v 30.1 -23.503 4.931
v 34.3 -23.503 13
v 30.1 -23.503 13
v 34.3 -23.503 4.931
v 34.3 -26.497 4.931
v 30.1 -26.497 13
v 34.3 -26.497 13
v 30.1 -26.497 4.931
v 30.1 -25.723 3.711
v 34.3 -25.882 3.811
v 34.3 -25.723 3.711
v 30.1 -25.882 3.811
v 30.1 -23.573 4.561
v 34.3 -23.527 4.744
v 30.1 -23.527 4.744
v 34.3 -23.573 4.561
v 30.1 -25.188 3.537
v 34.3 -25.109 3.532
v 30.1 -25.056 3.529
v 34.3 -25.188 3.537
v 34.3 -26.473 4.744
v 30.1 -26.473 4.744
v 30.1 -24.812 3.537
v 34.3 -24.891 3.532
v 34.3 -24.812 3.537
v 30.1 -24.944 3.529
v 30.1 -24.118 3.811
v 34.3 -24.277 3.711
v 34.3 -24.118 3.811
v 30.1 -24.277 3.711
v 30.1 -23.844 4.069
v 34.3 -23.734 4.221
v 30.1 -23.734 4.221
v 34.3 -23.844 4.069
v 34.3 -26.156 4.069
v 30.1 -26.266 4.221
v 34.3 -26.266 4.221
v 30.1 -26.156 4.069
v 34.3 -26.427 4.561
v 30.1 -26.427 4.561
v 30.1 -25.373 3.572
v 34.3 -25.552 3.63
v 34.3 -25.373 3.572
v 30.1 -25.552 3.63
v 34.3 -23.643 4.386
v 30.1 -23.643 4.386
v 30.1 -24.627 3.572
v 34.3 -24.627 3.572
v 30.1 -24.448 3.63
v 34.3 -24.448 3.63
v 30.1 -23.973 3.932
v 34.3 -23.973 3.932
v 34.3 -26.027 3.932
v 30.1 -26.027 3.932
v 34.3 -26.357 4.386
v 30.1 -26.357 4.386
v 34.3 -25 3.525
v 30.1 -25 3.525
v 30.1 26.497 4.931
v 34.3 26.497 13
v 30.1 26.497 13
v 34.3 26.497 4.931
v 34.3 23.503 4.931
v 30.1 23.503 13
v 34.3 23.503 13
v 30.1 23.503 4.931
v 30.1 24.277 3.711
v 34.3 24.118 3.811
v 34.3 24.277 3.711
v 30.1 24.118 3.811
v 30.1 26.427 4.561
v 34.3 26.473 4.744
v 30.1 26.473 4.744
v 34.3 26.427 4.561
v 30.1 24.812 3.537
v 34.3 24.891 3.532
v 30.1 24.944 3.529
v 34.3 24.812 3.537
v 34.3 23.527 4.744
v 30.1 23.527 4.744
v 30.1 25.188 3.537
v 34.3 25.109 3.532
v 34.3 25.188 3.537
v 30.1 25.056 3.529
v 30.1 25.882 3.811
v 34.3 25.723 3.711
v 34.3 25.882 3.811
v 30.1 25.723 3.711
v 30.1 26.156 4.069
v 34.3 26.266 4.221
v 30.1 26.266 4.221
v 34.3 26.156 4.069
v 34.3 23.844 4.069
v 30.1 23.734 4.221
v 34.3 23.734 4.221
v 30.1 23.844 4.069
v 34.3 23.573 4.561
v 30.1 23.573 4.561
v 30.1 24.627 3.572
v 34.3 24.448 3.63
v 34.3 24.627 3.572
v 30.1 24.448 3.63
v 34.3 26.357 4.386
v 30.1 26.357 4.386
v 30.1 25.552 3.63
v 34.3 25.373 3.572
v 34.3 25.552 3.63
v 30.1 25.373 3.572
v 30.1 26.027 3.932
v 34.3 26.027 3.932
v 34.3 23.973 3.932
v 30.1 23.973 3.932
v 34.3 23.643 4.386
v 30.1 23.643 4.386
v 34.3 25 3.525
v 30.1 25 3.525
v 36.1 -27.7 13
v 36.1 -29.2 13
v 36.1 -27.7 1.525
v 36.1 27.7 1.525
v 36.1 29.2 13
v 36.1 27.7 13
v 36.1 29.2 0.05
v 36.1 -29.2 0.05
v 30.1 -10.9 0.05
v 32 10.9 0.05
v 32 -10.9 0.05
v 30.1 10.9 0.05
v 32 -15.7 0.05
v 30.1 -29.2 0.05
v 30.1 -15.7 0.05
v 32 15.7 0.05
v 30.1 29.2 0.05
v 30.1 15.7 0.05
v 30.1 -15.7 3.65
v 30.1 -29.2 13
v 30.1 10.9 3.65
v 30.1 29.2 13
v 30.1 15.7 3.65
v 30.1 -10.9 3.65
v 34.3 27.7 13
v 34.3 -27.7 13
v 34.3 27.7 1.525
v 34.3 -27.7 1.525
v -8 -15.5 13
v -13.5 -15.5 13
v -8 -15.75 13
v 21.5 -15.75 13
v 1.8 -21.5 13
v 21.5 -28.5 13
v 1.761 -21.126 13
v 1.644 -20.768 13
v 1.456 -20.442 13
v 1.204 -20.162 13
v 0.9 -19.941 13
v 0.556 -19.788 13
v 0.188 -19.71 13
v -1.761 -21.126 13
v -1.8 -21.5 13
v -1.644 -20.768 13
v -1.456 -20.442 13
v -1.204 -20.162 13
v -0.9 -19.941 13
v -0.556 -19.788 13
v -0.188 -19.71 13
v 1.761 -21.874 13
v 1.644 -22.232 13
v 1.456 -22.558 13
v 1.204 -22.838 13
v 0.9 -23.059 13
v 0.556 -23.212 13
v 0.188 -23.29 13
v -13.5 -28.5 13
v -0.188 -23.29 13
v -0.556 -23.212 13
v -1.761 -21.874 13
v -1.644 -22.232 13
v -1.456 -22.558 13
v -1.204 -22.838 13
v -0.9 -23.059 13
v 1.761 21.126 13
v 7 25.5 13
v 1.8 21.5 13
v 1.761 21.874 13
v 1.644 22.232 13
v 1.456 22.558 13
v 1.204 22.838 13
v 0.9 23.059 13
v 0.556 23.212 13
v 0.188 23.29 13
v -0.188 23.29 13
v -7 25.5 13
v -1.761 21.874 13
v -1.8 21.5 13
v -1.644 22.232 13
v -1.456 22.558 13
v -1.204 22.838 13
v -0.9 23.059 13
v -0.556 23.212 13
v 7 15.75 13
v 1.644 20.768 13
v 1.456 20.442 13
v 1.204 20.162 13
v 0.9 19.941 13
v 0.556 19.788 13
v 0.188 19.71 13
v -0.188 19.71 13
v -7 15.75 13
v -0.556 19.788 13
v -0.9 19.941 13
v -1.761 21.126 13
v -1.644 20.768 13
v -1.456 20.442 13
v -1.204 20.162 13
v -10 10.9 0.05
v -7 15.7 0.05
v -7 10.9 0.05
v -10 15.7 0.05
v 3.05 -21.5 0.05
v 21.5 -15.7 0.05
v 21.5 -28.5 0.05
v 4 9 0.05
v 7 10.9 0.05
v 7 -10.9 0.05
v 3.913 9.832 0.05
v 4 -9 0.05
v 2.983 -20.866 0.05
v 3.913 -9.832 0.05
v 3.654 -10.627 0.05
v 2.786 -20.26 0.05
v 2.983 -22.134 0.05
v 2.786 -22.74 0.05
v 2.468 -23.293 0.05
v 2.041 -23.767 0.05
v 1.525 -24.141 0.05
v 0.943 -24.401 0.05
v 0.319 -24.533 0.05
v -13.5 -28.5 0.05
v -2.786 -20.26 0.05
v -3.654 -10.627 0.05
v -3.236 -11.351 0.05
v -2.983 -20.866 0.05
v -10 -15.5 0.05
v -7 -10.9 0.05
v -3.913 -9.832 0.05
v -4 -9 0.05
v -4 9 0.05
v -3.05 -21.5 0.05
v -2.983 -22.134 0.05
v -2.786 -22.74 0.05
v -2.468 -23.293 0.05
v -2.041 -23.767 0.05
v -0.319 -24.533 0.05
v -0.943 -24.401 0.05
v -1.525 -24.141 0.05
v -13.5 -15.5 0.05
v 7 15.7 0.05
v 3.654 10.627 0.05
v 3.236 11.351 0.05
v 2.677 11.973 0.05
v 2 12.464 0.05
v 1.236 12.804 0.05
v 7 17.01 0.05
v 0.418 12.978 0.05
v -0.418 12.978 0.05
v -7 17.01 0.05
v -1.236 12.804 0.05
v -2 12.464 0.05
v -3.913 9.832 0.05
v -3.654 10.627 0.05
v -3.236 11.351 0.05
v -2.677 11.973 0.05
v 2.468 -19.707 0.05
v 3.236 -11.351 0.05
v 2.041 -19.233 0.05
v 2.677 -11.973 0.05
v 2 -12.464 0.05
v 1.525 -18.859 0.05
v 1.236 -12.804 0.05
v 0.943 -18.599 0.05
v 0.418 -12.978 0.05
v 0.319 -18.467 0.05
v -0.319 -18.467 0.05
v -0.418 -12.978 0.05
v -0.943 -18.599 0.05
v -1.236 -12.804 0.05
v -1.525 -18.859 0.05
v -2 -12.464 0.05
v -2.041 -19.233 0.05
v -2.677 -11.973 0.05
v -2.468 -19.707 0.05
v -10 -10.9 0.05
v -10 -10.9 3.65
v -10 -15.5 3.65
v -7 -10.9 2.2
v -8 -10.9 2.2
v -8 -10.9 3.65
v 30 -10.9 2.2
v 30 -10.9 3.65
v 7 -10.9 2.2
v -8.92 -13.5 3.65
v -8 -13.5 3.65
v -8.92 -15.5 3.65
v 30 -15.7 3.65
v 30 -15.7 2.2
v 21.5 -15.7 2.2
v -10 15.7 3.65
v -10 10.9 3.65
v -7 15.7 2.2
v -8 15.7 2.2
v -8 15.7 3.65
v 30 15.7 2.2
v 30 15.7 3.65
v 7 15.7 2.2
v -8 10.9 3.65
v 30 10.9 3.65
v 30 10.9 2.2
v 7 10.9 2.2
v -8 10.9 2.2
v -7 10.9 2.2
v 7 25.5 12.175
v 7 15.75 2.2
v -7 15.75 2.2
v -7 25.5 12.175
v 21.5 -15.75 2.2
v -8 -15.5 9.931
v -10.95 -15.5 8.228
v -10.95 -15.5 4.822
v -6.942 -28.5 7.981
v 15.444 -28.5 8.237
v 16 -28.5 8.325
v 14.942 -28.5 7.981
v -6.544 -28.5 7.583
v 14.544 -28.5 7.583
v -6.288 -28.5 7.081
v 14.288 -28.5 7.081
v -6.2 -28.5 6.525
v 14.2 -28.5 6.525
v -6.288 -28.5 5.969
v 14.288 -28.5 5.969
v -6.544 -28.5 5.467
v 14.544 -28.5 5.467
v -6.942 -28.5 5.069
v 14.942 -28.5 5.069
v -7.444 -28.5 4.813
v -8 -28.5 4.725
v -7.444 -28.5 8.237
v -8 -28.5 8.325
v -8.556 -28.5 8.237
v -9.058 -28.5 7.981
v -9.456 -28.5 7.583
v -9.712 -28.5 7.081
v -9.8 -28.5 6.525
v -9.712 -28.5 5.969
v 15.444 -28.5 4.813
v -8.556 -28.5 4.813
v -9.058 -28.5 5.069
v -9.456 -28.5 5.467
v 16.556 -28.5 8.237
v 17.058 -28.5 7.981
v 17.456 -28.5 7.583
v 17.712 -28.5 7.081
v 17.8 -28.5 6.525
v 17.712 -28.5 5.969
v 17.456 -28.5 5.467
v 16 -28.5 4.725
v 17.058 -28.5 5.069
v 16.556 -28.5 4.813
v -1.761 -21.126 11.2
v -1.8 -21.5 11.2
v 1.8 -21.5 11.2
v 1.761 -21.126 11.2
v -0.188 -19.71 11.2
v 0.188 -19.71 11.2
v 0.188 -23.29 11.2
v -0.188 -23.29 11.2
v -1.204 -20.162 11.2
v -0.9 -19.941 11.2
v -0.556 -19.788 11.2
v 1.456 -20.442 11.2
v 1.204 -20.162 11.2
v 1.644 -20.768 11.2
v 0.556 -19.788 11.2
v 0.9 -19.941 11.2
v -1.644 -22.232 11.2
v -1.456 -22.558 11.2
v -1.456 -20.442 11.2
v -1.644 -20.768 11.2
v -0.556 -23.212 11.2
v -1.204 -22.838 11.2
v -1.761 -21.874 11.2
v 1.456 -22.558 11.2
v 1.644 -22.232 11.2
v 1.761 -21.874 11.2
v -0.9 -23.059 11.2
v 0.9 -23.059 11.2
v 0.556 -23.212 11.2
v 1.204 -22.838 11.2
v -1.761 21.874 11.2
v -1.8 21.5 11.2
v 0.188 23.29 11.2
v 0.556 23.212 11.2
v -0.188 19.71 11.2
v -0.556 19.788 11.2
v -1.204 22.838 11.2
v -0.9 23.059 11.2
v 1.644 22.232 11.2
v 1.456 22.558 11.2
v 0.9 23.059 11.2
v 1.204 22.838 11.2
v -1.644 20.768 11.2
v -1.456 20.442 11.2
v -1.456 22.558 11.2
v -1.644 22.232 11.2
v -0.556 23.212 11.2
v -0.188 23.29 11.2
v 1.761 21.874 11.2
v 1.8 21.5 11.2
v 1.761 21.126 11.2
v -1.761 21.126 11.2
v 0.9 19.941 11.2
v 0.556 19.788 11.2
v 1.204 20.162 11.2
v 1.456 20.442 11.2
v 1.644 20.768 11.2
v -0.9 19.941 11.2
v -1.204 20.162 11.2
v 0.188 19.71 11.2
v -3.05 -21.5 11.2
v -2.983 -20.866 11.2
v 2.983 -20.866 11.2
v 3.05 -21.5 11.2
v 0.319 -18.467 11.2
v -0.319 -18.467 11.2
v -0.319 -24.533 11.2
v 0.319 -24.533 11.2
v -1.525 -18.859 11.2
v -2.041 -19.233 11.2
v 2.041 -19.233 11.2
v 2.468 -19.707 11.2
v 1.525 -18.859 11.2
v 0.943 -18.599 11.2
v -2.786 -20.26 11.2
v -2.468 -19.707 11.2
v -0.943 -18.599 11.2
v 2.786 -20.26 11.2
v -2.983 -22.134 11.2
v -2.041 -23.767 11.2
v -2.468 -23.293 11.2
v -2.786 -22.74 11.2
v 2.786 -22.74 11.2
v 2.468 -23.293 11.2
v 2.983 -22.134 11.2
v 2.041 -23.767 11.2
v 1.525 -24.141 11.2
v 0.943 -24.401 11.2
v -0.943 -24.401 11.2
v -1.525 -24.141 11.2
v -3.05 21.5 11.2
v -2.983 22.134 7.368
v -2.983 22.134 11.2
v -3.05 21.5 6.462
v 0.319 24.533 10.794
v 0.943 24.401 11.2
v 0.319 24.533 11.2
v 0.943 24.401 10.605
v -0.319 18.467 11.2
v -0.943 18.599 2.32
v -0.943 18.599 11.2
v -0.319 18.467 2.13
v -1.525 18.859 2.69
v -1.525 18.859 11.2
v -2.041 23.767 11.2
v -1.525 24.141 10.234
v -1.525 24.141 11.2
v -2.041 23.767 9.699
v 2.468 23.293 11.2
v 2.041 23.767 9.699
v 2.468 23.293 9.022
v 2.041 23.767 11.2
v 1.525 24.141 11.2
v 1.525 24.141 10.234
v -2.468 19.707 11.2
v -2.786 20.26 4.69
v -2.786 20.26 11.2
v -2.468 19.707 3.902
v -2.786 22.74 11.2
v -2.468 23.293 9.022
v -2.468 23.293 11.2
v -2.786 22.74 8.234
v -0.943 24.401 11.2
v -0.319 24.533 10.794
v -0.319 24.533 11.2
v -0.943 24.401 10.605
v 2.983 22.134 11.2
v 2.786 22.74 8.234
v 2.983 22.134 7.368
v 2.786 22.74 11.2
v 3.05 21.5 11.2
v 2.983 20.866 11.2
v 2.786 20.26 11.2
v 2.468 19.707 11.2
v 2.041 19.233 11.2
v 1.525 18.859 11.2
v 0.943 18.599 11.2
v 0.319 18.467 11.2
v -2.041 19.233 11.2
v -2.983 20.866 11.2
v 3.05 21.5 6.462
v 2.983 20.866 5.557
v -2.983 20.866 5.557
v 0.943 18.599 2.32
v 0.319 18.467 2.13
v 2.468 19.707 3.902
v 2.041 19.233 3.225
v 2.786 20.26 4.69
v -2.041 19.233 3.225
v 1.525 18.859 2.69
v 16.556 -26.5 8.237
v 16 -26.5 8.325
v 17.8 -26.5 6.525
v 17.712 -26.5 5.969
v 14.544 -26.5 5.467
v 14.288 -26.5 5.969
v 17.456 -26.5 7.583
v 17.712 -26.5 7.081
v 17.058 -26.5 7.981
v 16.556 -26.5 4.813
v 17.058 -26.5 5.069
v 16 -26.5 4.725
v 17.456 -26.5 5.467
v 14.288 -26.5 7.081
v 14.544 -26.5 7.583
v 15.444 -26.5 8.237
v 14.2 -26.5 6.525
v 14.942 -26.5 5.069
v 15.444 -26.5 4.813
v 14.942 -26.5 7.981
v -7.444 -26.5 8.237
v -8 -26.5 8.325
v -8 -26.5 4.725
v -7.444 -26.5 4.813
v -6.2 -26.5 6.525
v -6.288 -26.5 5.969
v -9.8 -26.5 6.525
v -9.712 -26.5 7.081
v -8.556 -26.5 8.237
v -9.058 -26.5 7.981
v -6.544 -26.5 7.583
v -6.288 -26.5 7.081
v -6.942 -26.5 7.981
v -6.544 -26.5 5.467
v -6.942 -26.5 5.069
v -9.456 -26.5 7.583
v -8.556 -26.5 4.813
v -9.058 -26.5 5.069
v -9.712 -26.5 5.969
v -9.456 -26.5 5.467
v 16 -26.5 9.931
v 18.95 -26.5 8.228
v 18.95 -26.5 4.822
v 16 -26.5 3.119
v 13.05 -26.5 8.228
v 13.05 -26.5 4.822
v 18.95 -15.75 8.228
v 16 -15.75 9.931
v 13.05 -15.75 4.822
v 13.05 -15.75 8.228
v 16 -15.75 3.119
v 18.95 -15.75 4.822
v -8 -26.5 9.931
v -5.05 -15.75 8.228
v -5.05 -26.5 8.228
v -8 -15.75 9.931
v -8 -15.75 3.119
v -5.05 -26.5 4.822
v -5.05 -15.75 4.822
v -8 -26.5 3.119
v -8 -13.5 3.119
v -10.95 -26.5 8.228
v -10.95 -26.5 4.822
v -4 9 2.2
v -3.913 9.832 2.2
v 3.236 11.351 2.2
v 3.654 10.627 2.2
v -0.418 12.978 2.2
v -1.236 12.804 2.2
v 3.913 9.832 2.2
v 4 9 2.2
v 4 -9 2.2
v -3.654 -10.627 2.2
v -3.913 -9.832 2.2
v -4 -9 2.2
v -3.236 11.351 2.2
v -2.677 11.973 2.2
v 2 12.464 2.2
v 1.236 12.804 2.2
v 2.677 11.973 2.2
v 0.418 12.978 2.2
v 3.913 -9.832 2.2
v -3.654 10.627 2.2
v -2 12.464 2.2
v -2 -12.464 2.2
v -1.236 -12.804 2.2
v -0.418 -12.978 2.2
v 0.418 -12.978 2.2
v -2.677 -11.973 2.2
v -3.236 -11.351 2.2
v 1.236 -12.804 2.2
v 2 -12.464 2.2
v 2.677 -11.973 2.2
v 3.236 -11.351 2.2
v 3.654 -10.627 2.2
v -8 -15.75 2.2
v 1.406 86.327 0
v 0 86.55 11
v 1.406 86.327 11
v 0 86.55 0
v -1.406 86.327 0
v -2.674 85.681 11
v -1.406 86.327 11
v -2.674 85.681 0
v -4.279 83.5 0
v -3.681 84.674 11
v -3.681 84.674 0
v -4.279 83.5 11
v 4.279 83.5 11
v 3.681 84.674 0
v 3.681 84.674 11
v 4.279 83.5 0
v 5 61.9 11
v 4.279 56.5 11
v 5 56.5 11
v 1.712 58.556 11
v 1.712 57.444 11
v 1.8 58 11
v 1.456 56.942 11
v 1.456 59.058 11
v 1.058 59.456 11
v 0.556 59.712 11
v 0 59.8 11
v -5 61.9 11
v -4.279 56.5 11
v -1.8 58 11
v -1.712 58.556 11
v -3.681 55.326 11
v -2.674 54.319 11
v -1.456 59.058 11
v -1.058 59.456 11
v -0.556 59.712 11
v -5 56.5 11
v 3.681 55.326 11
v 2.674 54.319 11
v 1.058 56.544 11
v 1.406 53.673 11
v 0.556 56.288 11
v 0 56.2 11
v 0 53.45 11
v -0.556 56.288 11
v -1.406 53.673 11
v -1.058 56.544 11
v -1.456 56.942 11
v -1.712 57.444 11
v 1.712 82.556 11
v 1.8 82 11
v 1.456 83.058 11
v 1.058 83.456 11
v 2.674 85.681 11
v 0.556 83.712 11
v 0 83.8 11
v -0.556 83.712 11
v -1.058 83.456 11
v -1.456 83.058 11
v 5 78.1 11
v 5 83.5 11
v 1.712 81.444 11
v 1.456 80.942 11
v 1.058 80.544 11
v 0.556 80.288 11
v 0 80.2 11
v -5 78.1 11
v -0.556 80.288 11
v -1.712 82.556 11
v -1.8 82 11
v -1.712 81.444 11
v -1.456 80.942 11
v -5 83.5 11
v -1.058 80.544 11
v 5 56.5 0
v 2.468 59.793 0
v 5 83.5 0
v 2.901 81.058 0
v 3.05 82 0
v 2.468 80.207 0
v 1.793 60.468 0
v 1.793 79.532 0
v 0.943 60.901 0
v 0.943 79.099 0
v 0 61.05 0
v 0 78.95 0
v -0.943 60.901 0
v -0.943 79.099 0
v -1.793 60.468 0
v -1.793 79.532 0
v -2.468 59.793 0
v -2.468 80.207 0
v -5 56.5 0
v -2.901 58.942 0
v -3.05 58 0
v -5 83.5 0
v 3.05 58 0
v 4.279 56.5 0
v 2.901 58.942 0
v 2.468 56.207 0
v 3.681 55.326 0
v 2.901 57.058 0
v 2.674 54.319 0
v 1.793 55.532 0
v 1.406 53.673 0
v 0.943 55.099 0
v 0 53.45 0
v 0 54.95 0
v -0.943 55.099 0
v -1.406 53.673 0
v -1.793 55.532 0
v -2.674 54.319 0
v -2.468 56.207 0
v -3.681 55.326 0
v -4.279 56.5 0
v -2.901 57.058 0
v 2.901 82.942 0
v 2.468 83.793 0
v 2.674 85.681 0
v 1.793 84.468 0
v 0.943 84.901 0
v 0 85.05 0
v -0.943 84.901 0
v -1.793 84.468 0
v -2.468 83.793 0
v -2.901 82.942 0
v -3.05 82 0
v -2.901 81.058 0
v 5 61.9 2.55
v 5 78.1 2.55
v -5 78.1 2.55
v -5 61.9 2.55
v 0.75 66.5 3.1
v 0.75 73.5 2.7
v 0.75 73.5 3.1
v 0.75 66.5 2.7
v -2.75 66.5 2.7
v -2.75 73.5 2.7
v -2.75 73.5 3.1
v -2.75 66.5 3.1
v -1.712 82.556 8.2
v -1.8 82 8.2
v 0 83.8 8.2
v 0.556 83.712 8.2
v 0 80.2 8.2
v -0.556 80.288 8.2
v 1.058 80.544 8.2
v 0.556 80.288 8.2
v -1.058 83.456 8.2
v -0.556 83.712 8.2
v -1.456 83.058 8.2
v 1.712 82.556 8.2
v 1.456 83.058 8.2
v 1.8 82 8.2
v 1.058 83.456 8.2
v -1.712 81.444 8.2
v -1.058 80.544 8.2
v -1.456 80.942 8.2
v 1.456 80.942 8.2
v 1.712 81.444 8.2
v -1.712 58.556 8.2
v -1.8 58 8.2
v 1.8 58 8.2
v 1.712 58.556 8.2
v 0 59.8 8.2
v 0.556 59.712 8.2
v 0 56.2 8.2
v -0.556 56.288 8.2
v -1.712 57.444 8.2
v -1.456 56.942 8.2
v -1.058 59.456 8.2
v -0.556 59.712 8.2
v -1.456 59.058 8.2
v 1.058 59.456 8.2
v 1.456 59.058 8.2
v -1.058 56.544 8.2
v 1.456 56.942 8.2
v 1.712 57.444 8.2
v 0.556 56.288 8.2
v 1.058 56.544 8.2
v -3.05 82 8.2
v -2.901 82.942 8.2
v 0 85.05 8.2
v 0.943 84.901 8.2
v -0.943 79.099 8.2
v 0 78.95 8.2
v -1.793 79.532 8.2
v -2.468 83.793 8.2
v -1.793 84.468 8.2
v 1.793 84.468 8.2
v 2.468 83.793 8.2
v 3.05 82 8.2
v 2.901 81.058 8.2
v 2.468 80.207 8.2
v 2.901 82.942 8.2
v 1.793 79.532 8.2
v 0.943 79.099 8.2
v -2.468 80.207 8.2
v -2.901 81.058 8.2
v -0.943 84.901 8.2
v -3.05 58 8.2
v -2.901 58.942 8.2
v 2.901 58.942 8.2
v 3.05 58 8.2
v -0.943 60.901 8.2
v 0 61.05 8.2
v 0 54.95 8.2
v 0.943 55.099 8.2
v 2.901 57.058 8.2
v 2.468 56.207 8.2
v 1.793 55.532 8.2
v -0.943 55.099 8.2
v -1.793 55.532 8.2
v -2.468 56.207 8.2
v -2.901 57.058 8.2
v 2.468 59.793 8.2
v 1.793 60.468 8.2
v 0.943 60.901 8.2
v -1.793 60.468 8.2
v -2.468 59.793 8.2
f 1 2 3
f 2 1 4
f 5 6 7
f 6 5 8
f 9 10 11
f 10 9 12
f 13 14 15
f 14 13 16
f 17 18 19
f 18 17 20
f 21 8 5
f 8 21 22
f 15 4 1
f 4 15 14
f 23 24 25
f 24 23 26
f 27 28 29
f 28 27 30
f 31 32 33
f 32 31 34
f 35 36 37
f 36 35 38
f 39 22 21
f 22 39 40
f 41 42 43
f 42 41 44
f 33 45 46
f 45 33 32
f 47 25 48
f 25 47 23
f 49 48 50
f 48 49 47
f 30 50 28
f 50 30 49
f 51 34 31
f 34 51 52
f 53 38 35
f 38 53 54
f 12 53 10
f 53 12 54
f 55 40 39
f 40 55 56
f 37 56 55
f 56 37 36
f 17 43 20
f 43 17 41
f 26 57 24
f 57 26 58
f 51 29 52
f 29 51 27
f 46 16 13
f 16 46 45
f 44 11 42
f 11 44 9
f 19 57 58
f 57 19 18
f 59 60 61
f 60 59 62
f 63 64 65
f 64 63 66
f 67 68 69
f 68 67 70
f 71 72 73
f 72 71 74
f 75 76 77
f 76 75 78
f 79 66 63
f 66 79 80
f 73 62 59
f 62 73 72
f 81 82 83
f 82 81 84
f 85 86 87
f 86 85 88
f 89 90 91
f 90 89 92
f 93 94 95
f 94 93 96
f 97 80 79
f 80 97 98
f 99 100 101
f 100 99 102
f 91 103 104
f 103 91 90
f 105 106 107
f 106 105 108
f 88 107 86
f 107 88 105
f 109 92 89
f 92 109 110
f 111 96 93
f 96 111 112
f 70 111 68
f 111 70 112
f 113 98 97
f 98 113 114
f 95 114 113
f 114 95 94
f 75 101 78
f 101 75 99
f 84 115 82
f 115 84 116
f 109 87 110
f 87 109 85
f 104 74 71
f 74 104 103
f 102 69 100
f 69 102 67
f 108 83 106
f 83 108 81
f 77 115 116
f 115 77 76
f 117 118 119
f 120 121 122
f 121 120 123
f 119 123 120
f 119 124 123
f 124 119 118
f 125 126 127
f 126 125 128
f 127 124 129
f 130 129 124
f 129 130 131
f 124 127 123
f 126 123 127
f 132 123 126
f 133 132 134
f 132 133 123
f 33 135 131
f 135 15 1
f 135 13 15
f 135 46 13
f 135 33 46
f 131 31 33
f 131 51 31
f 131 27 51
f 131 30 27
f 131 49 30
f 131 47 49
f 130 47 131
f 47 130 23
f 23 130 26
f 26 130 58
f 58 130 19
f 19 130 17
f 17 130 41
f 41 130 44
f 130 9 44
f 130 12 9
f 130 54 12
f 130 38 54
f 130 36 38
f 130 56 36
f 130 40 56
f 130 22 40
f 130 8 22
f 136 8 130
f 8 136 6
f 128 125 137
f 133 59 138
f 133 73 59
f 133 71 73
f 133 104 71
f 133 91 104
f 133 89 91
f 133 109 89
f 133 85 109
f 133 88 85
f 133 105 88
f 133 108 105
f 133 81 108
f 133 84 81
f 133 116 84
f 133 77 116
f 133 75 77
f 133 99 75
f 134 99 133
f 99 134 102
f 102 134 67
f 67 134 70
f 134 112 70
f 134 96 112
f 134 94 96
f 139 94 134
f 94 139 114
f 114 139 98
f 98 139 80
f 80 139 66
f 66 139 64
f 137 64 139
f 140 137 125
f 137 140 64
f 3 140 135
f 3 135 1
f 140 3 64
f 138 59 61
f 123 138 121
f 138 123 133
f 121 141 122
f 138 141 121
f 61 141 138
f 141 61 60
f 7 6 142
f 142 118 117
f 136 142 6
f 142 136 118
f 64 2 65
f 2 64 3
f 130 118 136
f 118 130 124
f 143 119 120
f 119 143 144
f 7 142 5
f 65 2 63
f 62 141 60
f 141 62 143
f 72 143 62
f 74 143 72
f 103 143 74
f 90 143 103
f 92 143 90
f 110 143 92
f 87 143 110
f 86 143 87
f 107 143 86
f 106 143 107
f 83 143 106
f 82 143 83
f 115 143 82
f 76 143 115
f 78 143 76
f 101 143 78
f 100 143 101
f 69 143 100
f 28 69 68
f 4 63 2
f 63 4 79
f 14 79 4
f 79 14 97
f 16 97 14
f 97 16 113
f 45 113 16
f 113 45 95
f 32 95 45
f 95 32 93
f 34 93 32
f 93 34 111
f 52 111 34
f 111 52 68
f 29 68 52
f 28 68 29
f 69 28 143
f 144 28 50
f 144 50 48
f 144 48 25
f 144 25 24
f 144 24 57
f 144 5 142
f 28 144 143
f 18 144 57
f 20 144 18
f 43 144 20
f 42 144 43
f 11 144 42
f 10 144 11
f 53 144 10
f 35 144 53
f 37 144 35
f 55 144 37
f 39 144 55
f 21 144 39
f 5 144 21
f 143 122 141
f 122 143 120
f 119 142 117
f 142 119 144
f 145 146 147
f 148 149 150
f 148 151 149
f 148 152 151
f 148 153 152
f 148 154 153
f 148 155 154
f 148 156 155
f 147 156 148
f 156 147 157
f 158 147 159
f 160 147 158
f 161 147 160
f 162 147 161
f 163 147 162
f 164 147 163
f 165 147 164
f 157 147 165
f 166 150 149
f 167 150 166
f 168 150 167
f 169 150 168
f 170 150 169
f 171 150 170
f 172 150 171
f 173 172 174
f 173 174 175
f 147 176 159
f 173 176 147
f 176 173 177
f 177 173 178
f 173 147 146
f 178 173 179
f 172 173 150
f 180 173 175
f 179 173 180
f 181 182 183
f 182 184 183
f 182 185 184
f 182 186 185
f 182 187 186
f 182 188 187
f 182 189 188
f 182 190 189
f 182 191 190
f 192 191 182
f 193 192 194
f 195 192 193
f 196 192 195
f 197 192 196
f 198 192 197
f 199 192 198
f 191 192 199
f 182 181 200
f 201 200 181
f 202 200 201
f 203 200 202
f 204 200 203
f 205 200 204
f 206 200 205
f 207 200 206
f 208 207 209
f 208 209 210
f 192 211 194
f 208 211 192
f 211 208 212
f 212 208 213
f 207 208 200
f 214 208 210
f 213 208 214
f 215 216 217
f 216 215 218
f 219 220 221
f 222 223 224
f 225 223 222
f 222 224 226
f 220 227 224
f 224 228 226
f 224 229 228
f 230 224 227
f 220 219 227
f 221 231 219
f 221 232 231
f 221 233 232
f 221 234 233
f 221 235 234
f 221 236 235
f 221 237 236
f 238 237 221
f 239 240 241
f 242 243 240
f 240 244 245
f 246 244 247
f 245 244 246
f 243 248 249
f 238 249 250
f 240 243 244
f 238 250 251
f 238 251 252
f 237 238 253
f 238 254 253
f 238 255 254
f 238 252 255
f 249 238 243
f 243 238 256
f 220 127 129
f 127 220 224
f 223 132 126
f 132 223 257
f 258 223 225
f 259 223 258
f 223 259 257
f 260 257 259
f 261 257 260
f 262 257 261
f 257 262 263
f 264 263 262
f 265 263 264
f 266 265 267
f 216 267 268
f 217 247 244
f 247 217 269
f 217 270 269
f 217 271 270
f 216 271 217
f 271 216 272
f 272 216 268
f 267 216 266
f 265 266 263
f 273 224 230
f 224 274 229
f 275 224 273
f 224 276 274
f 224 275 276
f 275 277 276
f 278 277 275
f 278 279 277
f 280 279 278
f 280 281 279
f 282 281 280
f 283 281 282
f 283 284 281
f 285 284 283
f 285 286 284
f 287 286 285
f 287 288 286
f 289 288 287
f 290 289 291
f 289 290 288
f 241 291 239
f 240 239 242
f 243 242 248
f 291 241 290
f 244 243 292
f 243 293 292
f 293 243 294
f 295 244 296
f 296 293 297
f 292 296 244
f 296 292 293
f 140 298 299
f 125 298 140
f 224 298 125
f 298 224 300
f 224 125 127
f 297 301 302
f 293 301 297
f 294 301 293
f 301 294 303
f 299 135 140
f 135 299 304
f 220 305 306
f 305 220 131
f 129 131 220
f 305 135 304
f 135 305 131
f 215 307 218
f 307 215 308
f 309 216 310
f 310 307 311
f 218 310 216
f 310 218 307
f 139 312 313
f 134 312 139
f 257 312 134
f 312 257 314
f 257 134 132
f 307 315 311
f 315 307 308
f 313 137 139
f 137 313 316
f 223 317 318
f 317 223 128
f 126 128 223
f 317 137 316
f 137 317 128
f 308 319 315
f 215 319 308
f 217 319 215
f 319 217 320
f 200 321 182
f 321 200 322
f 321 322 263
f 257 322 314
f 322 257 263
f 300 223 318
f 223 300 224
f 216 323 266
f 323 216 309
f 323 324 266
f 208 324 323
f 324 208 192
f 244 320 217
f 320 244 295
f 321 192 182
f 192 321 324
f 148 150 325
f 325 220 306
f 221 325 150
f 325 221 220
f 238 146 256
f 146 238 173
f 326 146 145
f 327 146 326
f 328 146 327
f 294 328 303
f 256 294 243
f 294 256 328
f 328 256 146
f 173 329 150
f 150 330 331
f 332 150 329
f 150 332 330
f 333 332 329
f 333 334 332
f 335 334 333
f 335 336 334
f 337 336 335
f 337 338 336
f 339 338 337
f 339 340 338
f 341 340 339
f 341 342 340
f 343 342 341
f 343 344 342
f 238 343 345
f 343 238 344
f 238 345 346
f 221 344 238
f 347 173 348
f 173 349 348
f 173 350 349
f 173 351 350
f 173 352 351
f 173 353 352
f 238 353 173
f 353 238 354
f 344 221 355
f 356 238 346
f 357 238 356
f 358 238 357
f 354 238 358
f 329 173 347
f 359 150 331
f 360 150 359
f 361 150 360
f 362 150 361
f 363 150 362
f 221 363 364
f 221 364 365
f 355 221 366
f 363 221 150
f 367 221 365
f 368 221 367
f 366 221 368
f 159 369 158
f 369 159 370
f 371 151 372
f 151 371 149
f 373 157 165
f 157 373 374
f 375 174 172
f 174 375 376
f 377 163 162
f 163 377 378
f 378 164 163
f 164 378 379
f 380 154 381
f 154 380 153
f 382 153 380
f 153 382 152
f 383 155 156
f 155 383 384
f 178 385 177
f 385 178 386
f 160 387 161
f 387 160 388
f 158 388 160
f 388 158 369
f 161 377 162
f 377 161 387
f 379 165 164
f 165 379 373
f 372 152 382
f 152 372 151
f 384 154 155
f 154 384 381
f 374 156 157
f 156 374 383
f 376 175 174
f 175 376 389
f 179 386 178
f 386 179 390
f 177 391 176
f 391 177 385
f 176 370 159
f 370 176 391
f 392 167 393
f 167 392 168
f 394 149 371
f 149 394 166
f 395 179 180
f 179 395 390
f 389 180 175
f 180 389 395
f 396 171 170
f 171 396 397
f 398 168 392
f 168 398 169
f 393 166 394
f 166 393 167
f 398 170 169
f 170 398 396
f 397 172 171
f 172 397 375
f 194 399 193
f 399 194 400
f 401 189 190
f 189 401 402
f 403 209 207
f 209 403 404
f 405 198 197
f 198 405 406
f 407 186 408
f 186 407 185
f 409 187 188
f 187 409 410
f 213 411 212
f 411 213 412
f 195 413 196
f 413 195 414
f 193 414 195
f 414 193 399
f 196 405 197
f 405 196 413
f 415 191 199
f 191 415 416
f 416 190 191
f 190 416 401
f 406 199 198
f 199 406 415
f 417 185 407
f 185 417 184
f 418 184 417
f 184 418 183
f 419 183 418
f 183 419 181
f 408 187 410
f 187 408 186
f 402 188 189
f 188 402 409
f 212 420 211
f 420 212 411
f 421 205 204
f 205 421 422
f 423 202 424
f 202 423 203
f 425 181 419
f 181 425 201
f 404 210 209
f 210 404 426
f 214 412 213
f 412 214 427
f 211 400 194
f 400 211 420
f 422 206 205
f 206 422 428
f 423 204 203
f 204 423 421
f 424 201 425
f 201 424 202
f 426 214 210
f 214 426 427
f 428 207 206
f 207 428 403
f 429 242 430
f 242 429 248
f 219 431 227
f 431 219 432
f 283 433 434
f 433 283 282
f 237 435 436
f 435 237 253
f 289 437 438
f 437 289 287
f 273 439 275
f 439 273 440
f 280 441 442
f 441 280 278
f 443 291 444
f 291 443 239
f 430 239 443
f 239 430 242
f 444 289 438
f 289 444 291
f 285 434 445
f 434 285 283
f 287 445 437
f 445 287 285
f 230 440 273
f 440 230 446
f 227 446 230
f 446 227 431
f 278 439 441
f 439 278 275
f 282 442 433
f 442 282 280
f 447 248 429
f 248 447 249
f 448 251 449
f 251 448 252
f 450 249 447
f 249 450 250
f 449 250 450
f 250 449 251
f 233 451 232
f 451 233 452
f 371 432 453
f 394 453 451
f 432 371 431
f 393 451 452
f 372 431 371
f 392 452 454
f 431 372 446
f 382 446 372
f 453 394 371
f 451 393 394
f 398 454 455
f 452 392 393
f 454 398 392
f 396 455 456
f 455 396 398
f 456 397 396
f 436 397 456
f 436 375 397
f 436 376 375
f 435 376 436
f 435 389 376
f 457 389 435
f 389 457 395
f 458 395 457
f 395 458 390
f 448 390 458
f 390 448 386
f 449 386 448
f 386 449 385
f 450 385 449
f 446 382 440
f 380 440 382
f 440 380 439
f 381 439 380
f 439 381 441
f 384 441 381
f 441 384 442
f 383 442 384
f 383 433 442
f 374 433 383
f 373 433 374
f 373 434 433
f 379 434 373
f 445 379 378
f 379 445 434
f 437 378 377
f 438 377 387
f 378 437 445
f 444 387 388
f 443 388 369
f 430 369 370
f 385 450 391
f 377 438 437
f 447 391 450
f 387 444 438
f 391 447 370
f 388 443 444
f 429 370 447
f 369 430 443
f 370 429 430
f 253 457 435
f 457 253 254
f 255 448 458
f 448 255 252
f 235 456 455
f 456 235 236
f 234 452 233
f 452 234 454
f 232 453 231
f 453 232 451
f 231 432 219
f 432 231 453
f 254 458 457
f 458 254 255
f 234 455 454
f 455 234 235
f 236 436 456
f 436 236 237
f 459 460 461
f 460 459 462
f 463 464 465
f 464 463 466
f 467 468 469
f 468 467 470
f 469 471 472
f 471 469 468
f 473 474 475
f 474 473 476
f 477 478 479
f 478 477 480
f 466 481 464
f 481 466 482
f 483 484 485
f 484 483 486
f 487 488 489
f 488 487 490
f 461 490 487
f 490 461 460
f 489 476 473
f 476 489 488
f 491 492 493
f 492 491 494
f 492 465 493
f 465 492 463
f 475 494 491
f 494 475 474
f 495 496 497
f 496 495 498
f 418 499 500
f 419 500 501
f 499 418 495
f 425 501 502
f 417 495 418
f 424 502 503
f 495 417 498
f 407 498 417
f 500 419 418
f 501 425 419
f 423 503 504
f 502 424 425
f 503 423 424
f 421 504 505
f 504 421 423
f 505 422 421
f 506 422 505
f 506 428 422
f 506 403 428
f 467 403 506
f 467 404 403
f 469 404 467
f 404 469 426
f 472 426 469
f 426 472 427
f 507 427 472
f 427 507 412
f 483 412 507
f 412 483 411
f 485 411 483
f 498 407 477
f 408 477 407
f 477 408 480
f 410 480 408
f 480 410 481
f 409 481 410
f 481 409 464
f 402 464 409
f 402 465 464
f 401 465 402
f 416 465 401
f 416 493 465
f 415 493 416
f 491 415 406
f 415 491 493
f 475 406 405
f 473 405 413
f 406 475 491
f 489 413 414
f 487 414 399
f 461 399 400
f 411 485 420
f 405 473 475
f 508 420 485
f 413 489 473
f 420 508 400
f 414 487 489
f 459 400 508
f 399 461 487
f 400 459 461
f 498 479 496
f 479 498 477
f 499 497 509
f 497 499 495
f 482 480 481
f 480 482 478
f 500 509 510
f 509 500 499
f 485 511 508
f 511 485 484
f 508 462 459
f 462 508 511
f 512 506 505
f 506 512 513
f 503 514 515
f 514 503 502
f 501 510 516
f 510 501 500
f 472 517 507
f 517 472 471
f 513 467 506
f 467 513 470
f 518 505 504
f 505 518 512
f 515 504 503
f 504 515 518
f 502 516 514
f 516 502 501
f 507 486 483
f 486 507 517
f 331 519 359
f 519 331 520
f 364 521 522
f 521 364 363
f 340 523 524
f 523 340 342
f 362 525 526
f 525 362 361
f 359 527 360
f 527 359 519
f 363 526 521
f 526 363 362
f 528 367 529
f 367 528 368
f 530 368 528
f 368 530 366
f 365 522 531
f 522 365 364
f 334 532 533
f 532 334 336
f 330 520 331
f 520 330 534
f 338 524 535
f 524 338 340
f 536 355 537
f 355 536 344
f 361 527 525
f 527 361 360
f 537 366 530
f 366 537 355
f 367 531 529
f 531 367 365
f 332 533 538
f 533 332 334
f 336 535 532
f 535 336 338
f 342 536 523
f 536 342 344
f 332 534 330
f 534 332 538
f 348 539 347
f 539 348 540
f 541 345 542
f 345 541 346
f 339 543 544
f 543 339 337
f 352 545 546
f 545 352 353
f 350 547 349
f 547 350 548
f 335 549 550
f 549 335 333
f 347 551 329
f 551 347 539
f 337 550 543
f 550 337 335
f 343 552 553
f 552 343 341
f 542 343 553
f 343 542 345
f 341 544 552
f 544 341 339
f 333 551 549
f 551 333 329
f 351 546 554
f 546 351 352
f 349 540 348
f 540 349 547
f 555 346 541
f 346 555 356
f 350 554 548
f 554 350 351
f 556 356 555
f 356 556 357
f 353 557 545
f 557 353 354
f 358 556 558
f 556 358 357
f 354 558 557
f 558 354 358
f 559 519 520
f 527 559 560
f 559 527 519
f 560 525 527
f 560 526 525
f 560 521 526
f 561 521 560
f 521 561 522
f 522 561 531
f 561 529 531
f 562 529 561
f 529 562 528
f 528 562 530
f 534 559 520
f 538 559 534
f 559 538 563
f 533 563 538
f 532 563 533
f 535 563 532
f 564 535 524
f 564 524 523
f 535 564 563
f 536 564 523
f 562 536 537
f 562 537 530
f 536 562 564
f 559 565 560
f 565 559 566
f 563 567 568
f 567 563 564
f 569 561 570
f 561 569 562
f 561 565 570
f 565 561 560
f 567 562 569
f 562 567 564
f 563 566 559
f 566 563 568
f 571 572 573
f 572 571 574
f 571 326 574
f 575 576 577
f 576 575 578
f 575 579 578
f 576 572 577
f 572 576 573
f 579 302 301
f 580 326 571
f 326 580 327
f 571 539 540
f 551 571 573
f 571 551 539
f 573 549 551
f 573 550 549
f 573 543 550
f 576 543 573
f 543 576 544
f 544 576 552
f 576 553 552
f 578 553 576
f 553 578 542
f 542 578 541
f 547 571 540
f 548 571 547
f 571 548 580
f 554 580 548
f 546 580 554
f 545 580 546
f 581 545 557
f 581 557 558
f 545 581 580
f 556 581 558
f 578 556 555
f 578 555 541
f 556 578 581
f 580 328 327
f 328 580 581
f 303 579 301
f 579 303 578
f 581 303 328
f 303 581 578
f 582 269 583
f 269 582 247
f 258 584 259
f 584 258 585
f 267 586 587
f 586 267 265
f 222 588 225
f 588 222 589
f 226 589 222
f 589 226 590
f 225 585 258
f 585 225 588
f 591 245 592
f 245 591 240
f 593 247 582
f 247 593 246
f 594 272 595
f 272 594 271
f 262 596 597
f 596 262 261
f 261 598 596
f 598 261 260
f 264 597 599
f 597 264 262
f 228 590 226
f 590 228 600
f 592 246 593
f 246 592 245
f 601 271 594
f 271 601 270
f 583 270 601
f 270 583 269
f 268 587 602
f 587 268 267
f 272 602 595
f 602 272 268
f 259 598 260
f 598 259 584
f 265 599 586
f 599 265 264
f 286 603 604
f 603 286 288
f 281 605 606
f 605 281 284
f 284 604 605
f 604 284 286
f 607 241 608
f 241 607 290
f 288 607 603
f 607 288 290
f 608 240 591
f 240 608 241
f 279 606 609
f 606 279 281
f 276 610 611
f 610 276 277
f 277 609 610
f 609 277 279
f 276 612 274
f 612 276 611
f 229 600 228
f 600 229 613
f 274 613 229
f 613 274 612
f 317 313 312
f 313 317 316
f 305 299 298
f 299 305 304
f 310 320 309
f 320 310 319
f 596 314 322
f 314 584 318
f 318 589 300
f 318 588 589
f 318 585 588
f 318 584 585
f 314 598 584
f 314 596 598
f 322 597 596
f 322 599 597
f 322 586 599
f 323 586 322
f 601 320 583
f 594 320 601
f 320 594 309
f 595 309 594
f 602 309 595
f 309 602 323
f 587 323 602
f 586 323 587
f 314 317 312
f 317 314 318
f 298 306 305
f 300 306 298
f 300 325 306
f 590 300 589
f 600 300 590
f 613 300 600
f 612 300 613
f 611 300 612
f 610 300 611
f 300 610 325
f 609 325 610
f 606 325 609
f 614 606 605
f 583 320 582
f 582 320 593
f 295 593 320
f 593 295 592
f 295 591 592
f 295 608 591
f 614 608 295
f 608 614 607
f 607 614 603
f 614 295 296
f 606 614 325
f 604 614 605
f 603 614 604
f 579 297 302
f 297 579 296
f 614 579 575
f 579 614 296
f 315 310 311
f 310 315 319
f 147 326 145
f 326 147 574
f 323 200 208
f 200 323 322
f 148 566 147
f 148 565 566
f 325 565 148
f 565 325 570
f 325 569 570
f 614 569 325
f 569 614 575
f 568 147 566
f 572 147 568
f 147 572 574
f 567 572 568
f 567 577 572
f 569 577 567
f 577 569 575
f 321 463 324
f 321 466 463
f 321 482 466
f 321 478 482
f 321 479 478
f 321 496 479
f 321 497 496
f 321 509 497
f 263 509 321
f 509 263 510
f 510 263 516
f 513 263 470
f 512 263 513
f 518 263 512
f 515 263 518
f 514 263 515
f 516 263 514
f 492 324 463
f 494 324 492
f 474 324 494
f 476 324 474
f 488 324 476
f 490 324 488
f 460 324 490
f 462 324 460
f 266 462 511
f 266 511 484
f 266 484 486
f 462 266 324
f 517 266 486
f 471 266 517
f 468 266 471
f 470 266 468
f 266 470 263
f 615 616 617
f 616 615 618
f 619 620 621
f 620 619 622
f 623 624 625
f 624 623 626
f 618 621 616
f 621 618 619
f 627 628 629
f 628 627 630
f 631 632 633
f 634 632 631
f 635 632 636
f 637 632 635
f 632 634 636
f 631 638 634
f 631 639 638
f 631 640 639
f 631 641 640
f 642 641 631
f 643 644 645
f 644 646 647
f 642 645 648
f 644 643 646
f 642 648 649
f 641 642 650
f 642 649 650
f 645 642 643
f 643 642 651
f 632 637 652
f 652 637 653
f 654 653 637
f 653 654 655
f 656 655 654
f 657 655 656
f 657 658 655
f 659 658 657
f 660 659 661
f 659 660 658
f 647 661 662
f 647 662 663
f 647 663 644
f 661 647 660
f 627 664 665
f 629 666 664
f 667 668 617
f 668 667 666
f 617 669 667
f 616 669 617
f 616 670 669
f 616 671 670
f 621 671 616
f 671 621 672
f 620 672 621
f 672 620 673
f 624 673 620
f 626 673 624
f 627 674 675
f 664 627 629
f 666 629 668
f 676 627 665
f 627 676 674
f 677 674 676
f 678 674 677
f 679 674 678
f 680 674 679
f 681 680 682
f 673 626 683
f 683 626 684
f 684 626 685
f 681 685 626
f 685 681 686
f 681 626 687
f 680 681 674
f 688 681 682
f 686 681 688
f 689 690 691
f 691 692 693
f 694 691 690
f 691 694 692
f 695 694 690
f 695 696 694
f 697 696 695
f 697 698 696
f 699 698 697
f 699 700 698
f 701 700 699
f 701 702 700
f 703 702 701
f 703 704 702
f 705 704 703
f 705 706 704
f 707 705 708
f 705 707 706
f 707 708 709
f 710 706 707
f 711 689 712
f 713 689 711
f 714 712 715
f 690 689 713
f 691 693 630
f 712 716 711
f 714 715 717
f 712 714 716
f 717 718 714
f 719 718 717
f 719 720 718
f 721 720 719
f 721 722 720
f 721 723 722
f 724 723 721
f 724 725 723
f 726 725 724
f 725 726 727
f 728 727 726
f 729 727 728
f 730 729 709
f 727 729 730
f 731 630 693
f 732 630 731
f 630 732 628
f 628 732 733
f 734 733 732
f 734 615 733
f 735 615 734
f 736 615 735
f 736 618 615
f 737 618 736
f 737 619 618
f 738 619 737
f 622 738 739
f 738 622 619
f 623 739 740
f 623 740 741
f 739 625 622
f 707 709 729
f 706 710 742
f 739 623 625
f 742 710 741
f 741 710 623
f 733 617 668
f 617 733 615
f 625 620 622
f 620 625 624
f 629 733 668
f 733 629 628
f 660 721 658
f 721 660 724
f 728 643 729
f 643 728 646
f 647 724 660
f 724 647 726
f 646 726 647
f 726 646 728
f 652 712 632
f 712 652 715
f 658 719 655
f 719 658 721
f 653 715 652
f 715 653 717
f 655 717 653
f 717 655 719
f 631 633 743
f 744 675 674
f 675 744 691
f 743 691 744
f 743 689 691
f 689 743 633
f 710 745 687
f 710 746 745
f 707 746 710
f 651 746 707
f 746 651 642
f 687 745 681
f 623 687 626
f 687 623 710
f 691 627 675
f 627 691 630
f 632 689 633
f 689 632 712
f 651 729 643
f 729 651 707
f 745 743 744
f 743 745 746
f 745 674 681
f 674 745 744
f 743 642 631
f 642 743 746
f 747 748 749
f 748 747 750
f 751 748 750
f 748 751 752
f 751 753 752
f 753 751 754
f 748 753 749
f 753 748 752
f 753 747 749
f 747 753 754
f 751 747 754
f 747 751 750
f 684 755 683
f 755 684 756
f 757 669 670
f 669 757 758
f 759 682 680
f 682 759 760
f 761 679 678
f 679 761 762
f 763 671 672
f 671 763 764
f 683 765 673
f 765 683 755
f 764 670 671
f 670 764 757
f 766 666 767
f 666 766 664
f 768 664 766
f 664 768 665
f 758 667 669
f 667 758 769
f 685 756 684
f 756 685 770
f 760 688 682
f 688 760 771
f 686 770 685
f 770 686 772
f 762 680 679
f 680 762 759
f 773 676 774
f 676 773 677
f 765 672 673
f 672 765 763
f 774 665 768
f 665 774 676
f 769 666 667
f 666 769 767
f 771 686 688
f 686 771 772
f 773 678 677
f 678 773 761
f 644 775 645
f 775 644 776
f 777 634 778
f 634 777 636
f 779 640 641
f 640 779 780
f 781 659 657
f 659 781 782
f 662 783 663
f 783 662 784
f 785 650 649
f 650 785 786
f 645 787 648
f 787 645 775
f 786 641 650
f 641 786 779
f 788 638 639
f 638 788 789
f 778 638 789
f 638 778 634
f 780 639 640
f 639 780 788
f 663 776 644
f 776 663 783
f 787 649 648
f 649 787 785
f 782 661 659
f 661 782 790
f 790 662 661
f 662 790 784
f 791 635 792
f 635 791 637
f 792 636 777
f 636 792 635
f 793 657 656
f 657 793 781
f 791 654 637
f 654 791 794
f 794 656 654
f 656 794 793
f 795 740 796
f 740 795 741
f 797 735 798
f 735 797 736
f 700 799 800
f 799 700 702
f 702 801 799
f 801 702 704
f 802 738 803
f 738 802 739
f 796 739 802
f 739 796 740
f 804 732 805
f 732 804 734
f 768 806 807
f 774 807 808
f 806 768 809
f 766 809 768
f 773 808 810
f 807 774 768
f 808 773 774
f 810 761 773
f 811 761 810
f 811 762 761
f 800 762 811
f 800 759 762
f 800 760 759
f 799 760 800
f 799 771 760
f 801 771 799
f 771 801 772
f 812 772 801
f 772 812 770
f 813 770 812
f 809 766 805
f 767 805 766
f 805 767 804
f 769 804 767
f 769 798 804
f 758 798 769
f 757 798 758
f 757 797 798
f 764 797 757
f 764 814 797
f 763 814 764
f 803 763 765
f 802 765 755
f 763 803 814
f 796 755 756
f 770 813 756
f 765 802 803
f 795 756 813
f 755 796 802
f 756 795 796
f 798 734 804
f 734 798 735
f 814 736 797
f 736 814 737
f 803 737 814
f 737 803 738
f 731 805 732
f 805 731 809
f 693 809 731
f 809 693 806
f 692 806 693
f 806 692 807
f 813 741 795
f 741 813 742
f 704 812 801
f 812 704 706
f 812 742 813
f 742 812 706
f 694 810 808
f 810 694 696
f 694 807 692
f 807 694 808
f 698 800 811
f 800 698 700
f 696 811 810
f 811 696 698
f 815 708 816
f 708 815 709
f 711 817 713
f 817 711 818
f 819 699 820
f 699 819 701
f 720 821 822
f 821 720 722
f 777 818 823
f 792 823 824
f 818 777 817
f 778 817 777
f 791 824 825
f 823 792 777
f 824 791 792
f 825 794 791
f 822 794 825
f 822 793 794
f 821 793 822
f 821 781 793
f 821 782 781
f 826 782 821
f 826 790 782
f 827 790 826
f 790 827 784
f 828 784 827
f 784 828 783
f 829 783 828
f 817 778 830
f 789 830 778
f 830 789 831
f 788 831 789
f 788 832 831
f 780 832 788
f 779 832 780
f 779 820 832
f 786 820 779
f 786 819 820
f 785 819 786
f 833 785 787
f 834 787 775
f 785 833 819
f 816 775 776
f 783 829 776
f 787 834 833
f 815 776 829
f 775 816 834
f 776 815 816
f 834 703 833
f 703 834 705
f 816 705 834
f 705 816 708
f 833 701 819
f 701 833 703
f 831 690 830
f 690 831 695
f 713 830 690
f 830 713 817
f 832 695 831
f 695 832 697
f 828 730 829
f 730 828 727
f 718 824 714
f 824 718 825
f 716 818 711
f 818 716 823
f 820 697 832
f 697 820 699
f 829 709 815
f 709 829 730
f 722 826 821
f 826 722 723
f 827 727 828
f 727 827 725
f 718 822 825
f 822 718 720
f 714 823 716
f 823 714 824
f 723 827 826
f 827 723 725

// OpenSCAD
// file: xt60_bracket.scad
// EMAX nighthawk accessories  - a OpenSCAD 
// Copyright (C) 2016  Gerard Valade

// This program is free software: you can redistribute it and/or modify
// it under the terms of the GNU General Public License as published by
// the Free Software Foundation, either version 3 of the License, or
// (at your option) any later version.

// This program is distributed in the hope that it will be useful,
// but WITHOUT ANY WARRANTY; without even the implied warranty of
// MERCHANTABILITY or FITNESS FOR A PARTICULAR PURPOSE.  See the
// GNU General Public License for more details.

// You should have received a copy of the GNU General Public License
// along with this program.  If not, see <http://www.gnu.org/licenses/>.

$fn=30;


M3_dia = 3.6;
M3_hole = 2.5;
M3_hexa = 5.4+0.4;
M3_head_hole = 5.4+0.7;

module hexaprismx(
	ri =  1.0,  // radius of inscribed circle
	h  =  1.0)  // height of hexaprism
{ // -----------------------------------------------

	ra = ri*2/sqrt(3);
	cylinder(r = ra, h=h, $fn=6, center=false);
}



xt60_length = 10;//21;
xt60_width = 27;
xt60_heigth = 11;

function xt60_length() = xt60_length;
function xt60_width() = xt60_width;
function xt60_heigth() = xt60_heigth;


module xt60_footprint(cut=4)
{
	hh = 8.5;
	difference() {
		union() {
			translate([0, 0, hh/2-0.05]) cube([xt60_length+0.05, 16.2, hh], center=true);
			//translate([-16 + 0.02, 0, -2.2+4]) cube([16, 15.2, 11.5], center=true);
		}
		//translate([0, 8.1+1, hh/2+4]) rotate([45, 0, 0]) cube([xt60_length-4.5,cut,cut], center=true);
		translate([(xt60_length-8)/2 , 0, hh-0.8/2]) cube([3.5, 7, 0.4], center=true);
	}
}
	

module xt60_screw_hole(dia=2.2, h=10, $fn=20)
{
	for(x=[0]) for(y=[1, -1]) translate([x*8, y*12, 0]) {
		cylinder(d=dia, h=h, center=true);
	}	
}

module xt60_bracket()
{
	module plain()
	{
		translate([0,0,(xt60_heigth)/2])  cube([xt60_length, xt60_width, xt60_heigth], center=true);
		translate([0,0,(xt60_heigth)/2]) xt60_screw_hole(dia=M3_head_hole+3, h=xt60_heigth);
	}
	module hole()
	{
		translate([0, 0, 0]) {
			xt60_footprint();
		}
	}

	translate([0, 0, xt60_heigth]) rotate([0, 180, 0]) {
		difference()
		{
			plain();
			translate([0, 0, 0]) hole();
			translate([0, 0, xt60_heigth/2]) xt60_screw_hole(M3_dia, h=xt60_heigth+1);
			translate([0, 0, xt60_heigth/2+2.8]) xt60_screw_hole(M3_head_hole, h=xt60_heigth);
		}
	}
}



translate([0, 0, 0])  rotate([0, 0, 0]) xt60_bracket();
// main file
// EMAX nighthawk accessories  - a OpenSCAD 
// Copyright (C) 2016  Gerard Valade

// This program is free software: you can redistribute it and/or modify
// it under the terms of the GNU General Public License as published by
// the Free Software Foundation, either version 3 of the License, or
// (at your option) any later version.

// This program is distributed in the hope that it will be useful,
// but WITHOUT ANY WARRANTY; without even the implied warranty of
// MERCHANTABILITY or FITNESS FOR A PARTICULAR PURPOSE.  See the
// GNU General Public License for more details.

// You should have received a copy of the GNU General Public License
// along with this program.  If not, see <http://www.gnu.org/licenses/>.

$fn=30;

use <xt60_bracket.scad>

$fn=30;
xt60_length = xt60_length();
xt60_width = xt60_width();
xt60_heigth = xt60_heigth();


transmitter_heigth = 10.65;
transmitter_width=30.5;
transmitter_length=37;

M3_dia = 3.6;
M3_hole = 2.5;
M3_hexa = 5.4+0.5;
M3_head_hole = 5.4+0.7;

module hexaprismx(
	ri =  1.0,  // radius of inscribed circle
	h  =  1.0)  // height of hexaprism
{ // -----------------------------------------------

	ra = ri*2/sqrt(3);
	cylinder(r = ra, h=h, $fn=6, center=false);
}


module video_transmitter()
{
	translate([0, 0, transmitter_heigth/2])  color("brown") cube([transmitter_length, transmitter_width, transmitter_heigth], center=true);
	translate([-37/2+3.5, 0, transmitter_heigth]) {
		translate([0, 0, 11.30]) color("red") cylinder(d=7.23, h=42.66);
		translate([0, 0, 0]) color("yellow") cylinder(d=7.5, h=11.30);
		translate([0, 0, 3]) color("yellow") hexaprismx(ri=4, h=6.2, $fn=6);
		
	} 	
	
}


module video_bracket_simple(heigth)
{
	thick = 2.5;
	width = transmitter_width+2*thick+1;
	heigth = transmitter_heigth+thick+0.5;
	length  = 10;
	translate([0, 0, 0])  difference()
	{
		union()
		{
			translate([0, 0, (heigth)/2])  cube([length, width, heigth], center=true);
			translate([0, 0, (thick)/2])  cube([length, 56, thick], center=true);
			for(y=[-1, 1]) translate([0, y*43/2, 0]) cylinder(d=6, h=thick+3);
		}
		translate([0, 0, transmitter_heigth/2-0.05])  cube([transmitter_length+1, transmitter_width+1, transmitter_heigth+0.4], center=true);
		for(y=[-1, 1]) translate([0, y*43/2, -1])  cylinder(d=M3_dia, h=10);
	}
}
module video_led_bracket(heigth)
{
	thick = 2;
	width = 43;
	heigth = 2;
	length  = 3;
	led_pos = 32;
	ra = M3_hexa*2/sqrt(3);
	translate([0, 0, 0])  difference()
	{
		union()
		{
			translate([0, 0, (thick)/2])  cube([5, width, thick], center=true);
			for(y=[-1, 1]) {
				translate([0, y*43/2, 0]) cylinder(d=10, h=thick+3);
				translate([led_pos/2-2, y*43/2, (thick)/2])  cube([led_pos, 9, thick], center=true);
				translate([led_pos/2-2, y*43/2, (thick+3)/2])  cube([led_pos, 3, thick+3], center=true);
			}
		}
		for(y=[-1, 1]) translate([0, y*43/2, -1])  cylinder(d=M3_dia, h=10);
		for(y=[-1, 1]) translate([0, y*43/2, thick])  cylinder(d=ra, h=4, $fn=6); //hexaprismx(ri=M3_hexa, h=5);
	}
	//translate([led_pos, 0, 13.5/2]) mirror([0, 0, 1]) mirror([1, 0, 0])  led_plate(13.5);
	translate([led_pos, 0, 2/2])  cube([5, 54, 2], center=true);
	translate([led_pos, 0, (thick+3)/2])   rotate([0, 0, 0]) hull()
			{
				translate([0, -54/2, 0])  cylinder(d=8, h=thick+3, center=true, $fn=50);
				translate([0, 54/2, 0])  cylinder(d=8, h=thick+3, center=true, $fn=50);
				
			}
}

module led_plate(heigth)
{ 
	led_length = 54.4 + 1;
	thick = 6;
	difference()
	{
		cube([thick, led_length+3, heigth], center=true);
		translate([3.2-thick, 0, +0.5-1.5]) cube([3.2, led_length, 12], center=true);
		for(x = [-1, 1]) {
			translate([0, x*25, 0]) rotate([0, 90, 0]) hull()
			{
				translate([10, 0, 0])  cylinder(d=3, h=15, center=true, $fn=50);
				translate([-1.5, 0, 0])  cylinder(d=3, h=15, center=true, $fn=50);
				
			}
		}
	}
}

module video_bracket(heigth)
{
	thick = 1.8;
	width = transmitter_width+2*thick+1;
	heigth = transmitter_heigth+thick+0.5;
	length  = 14;
	offset = -11;
	
	
	

	module triangle()
	{
		for(y = [0]) {
			translate([-length/2, 13+y, 0])
			cube([length, 12, heigth]);
			//rotate([0, -90, 0]) linear_extrude(height = 1, center = true, convexity = 10, twist = 0) polygon(points=[[0, 0],[heigth-thick, 0],[0, 10.8]], convexity=10);
		}
	
	}	
	module triangle2()
	{
		for(y = [0:2.8:length-1]) {
			translate([-length/2, 13+y, 0]) cube([length, 0.8, heigth]);
			//rotate([0, -90, 0]) linear_extrude(height = 1, center = true, convexity = 10, twist = 0) polygon(points=[[0, 0],[heigth-thick, 0],[0, 10.8]], convexity=10);
		}
	
	}	
	
	module triangle1()
	{
		for(x = [0:2.8:length-1]) {
			translate([x-length/2+0.5, 17.15, thick])
			rotate([0, -90, 0]) linear_extrude(height = 1, center = true, convexity = 10, twist = 0) polygon(points=[[0, 0],[heigth-thick, 0],[0, 10.8]], convexity=10);
		}
	
	}
	
	module xt60_holder()
	{
			translate([0, 0, heigth/2])  cube([xt60_width+8, 13, heigth], center=true);
		
	}
		
	translate([0, 0, 0])  difference()
	{
		union()
		{
			//translate([0, 0, heigth/2])  cube([length, width, heigth], center=true);
			translate([0, 0, heigth/2])  cube([length, 51, heigth], center=true);
			translate([0, 0, heigth-1/2])  cube([length, 50, 1], center=true);
			translate([0, 0, (thick)/2])  cube([length, 50, thick], center=true);
			//translate([-transmitter_length+4.4, 0, heigth/2])  cube([5, 51, heigth], center=true);
			
			translate([-transmitter_length+4-0.1, 0, heigth/2]) led_plate(heigth);
			for(y=[-1, 1]) translate([0, y*43/2, 0]) cylinder(d=6, h=thick+3);
			triangle();
			//mirror([0, 1, 0]) triangle();
			for(y=[-1, 1]) translate([0, y*43/2, 0])  cylinder(d=M3_head_hole+1.5, h=heigth);
			translate([offset, 0, 0]) for(y=[-1, 1]) translate([0, y*(12.9+0.4), heigth-thick])  
			{
				//cube([transmitter_length+5, 4.8+0.5, thick*2], center=true);
				cube([transmitter_length+5, 4.8, thick*2], center=true);
			}
			
			translate([-4, -22, 0])   xt60_holder();
		}
		translate([0, 0, transmitter_heigth-0.05])	hull()
		{
			translate([0, 18/2, 0]) cylinder(d=length-6, h=thick*2);
			translate([0,  -18/2, 0]) cylinder(d=length-6, h=thick*2);
		}
		
		translate([offset, 0, transmitter_heigth/2-0.05])  cube([transmitter_length+1, transmitter_width+1, transmitter_heigth+0.4], center=true);
		for(y=[-1, 1]) translate([0, y*43/2, -1])  cylinder(d=M3_dia, h=heigth+5);
		for(y=[-1, 1]) translate([0, y*43/2, thick])  cylinder(d=M3_head_hole, h=heigth+15);

		for(y = [1]) {
			translate([0, y*25, 12]) 	rotate([y*35, 0, 0]) cube([length+12, 12, heigth+15], center=true);
			//rotate([0, -90, 0]) linear_extrude(height = 1, center = true, convexity = 10, twist = 0) polygon(points=[[0, 0],[heigth-thick, 0],[0, 10.8]], convexity=10);
		}
		ra = M3_hexa*2/sqrt(3);
		translate([-4, -25, heigth/2])  rotate([0, 0, 90]) rotate([0, 90, 0]) {
			xt60_screw_hole(M3_dia,h=20);
			translate([0, 0, 3+2]) xt60_screw_hole(ra, h=13, $fn=6);
		}
	}
		
	//translate([-32.8, 0, -13.4/2+heigth])	rotate([0, 0, 0]) led_plate(13.4);	
	
}

module video_transmitter_view()
{
	translate([5, 0, 0]) rotate([0, 0, 0]) video_bracket();
	translate([-6, 0, 0]) rotate([0, 0, 0]) video_transmitter();
	translate([5-4, -40, 6.5])  rotate([0, 90, 0]) rotate([-90, 0, 0]) xt60_bracket();
}

//translate([80, 0, 0]) video_transmitter_view();

translate([0, 0, 13]) rotate([0, 180, 0]) video_bracket();
translate([0, 70, 0])  rotate([0, 0, 0]) xt60_bracket();
